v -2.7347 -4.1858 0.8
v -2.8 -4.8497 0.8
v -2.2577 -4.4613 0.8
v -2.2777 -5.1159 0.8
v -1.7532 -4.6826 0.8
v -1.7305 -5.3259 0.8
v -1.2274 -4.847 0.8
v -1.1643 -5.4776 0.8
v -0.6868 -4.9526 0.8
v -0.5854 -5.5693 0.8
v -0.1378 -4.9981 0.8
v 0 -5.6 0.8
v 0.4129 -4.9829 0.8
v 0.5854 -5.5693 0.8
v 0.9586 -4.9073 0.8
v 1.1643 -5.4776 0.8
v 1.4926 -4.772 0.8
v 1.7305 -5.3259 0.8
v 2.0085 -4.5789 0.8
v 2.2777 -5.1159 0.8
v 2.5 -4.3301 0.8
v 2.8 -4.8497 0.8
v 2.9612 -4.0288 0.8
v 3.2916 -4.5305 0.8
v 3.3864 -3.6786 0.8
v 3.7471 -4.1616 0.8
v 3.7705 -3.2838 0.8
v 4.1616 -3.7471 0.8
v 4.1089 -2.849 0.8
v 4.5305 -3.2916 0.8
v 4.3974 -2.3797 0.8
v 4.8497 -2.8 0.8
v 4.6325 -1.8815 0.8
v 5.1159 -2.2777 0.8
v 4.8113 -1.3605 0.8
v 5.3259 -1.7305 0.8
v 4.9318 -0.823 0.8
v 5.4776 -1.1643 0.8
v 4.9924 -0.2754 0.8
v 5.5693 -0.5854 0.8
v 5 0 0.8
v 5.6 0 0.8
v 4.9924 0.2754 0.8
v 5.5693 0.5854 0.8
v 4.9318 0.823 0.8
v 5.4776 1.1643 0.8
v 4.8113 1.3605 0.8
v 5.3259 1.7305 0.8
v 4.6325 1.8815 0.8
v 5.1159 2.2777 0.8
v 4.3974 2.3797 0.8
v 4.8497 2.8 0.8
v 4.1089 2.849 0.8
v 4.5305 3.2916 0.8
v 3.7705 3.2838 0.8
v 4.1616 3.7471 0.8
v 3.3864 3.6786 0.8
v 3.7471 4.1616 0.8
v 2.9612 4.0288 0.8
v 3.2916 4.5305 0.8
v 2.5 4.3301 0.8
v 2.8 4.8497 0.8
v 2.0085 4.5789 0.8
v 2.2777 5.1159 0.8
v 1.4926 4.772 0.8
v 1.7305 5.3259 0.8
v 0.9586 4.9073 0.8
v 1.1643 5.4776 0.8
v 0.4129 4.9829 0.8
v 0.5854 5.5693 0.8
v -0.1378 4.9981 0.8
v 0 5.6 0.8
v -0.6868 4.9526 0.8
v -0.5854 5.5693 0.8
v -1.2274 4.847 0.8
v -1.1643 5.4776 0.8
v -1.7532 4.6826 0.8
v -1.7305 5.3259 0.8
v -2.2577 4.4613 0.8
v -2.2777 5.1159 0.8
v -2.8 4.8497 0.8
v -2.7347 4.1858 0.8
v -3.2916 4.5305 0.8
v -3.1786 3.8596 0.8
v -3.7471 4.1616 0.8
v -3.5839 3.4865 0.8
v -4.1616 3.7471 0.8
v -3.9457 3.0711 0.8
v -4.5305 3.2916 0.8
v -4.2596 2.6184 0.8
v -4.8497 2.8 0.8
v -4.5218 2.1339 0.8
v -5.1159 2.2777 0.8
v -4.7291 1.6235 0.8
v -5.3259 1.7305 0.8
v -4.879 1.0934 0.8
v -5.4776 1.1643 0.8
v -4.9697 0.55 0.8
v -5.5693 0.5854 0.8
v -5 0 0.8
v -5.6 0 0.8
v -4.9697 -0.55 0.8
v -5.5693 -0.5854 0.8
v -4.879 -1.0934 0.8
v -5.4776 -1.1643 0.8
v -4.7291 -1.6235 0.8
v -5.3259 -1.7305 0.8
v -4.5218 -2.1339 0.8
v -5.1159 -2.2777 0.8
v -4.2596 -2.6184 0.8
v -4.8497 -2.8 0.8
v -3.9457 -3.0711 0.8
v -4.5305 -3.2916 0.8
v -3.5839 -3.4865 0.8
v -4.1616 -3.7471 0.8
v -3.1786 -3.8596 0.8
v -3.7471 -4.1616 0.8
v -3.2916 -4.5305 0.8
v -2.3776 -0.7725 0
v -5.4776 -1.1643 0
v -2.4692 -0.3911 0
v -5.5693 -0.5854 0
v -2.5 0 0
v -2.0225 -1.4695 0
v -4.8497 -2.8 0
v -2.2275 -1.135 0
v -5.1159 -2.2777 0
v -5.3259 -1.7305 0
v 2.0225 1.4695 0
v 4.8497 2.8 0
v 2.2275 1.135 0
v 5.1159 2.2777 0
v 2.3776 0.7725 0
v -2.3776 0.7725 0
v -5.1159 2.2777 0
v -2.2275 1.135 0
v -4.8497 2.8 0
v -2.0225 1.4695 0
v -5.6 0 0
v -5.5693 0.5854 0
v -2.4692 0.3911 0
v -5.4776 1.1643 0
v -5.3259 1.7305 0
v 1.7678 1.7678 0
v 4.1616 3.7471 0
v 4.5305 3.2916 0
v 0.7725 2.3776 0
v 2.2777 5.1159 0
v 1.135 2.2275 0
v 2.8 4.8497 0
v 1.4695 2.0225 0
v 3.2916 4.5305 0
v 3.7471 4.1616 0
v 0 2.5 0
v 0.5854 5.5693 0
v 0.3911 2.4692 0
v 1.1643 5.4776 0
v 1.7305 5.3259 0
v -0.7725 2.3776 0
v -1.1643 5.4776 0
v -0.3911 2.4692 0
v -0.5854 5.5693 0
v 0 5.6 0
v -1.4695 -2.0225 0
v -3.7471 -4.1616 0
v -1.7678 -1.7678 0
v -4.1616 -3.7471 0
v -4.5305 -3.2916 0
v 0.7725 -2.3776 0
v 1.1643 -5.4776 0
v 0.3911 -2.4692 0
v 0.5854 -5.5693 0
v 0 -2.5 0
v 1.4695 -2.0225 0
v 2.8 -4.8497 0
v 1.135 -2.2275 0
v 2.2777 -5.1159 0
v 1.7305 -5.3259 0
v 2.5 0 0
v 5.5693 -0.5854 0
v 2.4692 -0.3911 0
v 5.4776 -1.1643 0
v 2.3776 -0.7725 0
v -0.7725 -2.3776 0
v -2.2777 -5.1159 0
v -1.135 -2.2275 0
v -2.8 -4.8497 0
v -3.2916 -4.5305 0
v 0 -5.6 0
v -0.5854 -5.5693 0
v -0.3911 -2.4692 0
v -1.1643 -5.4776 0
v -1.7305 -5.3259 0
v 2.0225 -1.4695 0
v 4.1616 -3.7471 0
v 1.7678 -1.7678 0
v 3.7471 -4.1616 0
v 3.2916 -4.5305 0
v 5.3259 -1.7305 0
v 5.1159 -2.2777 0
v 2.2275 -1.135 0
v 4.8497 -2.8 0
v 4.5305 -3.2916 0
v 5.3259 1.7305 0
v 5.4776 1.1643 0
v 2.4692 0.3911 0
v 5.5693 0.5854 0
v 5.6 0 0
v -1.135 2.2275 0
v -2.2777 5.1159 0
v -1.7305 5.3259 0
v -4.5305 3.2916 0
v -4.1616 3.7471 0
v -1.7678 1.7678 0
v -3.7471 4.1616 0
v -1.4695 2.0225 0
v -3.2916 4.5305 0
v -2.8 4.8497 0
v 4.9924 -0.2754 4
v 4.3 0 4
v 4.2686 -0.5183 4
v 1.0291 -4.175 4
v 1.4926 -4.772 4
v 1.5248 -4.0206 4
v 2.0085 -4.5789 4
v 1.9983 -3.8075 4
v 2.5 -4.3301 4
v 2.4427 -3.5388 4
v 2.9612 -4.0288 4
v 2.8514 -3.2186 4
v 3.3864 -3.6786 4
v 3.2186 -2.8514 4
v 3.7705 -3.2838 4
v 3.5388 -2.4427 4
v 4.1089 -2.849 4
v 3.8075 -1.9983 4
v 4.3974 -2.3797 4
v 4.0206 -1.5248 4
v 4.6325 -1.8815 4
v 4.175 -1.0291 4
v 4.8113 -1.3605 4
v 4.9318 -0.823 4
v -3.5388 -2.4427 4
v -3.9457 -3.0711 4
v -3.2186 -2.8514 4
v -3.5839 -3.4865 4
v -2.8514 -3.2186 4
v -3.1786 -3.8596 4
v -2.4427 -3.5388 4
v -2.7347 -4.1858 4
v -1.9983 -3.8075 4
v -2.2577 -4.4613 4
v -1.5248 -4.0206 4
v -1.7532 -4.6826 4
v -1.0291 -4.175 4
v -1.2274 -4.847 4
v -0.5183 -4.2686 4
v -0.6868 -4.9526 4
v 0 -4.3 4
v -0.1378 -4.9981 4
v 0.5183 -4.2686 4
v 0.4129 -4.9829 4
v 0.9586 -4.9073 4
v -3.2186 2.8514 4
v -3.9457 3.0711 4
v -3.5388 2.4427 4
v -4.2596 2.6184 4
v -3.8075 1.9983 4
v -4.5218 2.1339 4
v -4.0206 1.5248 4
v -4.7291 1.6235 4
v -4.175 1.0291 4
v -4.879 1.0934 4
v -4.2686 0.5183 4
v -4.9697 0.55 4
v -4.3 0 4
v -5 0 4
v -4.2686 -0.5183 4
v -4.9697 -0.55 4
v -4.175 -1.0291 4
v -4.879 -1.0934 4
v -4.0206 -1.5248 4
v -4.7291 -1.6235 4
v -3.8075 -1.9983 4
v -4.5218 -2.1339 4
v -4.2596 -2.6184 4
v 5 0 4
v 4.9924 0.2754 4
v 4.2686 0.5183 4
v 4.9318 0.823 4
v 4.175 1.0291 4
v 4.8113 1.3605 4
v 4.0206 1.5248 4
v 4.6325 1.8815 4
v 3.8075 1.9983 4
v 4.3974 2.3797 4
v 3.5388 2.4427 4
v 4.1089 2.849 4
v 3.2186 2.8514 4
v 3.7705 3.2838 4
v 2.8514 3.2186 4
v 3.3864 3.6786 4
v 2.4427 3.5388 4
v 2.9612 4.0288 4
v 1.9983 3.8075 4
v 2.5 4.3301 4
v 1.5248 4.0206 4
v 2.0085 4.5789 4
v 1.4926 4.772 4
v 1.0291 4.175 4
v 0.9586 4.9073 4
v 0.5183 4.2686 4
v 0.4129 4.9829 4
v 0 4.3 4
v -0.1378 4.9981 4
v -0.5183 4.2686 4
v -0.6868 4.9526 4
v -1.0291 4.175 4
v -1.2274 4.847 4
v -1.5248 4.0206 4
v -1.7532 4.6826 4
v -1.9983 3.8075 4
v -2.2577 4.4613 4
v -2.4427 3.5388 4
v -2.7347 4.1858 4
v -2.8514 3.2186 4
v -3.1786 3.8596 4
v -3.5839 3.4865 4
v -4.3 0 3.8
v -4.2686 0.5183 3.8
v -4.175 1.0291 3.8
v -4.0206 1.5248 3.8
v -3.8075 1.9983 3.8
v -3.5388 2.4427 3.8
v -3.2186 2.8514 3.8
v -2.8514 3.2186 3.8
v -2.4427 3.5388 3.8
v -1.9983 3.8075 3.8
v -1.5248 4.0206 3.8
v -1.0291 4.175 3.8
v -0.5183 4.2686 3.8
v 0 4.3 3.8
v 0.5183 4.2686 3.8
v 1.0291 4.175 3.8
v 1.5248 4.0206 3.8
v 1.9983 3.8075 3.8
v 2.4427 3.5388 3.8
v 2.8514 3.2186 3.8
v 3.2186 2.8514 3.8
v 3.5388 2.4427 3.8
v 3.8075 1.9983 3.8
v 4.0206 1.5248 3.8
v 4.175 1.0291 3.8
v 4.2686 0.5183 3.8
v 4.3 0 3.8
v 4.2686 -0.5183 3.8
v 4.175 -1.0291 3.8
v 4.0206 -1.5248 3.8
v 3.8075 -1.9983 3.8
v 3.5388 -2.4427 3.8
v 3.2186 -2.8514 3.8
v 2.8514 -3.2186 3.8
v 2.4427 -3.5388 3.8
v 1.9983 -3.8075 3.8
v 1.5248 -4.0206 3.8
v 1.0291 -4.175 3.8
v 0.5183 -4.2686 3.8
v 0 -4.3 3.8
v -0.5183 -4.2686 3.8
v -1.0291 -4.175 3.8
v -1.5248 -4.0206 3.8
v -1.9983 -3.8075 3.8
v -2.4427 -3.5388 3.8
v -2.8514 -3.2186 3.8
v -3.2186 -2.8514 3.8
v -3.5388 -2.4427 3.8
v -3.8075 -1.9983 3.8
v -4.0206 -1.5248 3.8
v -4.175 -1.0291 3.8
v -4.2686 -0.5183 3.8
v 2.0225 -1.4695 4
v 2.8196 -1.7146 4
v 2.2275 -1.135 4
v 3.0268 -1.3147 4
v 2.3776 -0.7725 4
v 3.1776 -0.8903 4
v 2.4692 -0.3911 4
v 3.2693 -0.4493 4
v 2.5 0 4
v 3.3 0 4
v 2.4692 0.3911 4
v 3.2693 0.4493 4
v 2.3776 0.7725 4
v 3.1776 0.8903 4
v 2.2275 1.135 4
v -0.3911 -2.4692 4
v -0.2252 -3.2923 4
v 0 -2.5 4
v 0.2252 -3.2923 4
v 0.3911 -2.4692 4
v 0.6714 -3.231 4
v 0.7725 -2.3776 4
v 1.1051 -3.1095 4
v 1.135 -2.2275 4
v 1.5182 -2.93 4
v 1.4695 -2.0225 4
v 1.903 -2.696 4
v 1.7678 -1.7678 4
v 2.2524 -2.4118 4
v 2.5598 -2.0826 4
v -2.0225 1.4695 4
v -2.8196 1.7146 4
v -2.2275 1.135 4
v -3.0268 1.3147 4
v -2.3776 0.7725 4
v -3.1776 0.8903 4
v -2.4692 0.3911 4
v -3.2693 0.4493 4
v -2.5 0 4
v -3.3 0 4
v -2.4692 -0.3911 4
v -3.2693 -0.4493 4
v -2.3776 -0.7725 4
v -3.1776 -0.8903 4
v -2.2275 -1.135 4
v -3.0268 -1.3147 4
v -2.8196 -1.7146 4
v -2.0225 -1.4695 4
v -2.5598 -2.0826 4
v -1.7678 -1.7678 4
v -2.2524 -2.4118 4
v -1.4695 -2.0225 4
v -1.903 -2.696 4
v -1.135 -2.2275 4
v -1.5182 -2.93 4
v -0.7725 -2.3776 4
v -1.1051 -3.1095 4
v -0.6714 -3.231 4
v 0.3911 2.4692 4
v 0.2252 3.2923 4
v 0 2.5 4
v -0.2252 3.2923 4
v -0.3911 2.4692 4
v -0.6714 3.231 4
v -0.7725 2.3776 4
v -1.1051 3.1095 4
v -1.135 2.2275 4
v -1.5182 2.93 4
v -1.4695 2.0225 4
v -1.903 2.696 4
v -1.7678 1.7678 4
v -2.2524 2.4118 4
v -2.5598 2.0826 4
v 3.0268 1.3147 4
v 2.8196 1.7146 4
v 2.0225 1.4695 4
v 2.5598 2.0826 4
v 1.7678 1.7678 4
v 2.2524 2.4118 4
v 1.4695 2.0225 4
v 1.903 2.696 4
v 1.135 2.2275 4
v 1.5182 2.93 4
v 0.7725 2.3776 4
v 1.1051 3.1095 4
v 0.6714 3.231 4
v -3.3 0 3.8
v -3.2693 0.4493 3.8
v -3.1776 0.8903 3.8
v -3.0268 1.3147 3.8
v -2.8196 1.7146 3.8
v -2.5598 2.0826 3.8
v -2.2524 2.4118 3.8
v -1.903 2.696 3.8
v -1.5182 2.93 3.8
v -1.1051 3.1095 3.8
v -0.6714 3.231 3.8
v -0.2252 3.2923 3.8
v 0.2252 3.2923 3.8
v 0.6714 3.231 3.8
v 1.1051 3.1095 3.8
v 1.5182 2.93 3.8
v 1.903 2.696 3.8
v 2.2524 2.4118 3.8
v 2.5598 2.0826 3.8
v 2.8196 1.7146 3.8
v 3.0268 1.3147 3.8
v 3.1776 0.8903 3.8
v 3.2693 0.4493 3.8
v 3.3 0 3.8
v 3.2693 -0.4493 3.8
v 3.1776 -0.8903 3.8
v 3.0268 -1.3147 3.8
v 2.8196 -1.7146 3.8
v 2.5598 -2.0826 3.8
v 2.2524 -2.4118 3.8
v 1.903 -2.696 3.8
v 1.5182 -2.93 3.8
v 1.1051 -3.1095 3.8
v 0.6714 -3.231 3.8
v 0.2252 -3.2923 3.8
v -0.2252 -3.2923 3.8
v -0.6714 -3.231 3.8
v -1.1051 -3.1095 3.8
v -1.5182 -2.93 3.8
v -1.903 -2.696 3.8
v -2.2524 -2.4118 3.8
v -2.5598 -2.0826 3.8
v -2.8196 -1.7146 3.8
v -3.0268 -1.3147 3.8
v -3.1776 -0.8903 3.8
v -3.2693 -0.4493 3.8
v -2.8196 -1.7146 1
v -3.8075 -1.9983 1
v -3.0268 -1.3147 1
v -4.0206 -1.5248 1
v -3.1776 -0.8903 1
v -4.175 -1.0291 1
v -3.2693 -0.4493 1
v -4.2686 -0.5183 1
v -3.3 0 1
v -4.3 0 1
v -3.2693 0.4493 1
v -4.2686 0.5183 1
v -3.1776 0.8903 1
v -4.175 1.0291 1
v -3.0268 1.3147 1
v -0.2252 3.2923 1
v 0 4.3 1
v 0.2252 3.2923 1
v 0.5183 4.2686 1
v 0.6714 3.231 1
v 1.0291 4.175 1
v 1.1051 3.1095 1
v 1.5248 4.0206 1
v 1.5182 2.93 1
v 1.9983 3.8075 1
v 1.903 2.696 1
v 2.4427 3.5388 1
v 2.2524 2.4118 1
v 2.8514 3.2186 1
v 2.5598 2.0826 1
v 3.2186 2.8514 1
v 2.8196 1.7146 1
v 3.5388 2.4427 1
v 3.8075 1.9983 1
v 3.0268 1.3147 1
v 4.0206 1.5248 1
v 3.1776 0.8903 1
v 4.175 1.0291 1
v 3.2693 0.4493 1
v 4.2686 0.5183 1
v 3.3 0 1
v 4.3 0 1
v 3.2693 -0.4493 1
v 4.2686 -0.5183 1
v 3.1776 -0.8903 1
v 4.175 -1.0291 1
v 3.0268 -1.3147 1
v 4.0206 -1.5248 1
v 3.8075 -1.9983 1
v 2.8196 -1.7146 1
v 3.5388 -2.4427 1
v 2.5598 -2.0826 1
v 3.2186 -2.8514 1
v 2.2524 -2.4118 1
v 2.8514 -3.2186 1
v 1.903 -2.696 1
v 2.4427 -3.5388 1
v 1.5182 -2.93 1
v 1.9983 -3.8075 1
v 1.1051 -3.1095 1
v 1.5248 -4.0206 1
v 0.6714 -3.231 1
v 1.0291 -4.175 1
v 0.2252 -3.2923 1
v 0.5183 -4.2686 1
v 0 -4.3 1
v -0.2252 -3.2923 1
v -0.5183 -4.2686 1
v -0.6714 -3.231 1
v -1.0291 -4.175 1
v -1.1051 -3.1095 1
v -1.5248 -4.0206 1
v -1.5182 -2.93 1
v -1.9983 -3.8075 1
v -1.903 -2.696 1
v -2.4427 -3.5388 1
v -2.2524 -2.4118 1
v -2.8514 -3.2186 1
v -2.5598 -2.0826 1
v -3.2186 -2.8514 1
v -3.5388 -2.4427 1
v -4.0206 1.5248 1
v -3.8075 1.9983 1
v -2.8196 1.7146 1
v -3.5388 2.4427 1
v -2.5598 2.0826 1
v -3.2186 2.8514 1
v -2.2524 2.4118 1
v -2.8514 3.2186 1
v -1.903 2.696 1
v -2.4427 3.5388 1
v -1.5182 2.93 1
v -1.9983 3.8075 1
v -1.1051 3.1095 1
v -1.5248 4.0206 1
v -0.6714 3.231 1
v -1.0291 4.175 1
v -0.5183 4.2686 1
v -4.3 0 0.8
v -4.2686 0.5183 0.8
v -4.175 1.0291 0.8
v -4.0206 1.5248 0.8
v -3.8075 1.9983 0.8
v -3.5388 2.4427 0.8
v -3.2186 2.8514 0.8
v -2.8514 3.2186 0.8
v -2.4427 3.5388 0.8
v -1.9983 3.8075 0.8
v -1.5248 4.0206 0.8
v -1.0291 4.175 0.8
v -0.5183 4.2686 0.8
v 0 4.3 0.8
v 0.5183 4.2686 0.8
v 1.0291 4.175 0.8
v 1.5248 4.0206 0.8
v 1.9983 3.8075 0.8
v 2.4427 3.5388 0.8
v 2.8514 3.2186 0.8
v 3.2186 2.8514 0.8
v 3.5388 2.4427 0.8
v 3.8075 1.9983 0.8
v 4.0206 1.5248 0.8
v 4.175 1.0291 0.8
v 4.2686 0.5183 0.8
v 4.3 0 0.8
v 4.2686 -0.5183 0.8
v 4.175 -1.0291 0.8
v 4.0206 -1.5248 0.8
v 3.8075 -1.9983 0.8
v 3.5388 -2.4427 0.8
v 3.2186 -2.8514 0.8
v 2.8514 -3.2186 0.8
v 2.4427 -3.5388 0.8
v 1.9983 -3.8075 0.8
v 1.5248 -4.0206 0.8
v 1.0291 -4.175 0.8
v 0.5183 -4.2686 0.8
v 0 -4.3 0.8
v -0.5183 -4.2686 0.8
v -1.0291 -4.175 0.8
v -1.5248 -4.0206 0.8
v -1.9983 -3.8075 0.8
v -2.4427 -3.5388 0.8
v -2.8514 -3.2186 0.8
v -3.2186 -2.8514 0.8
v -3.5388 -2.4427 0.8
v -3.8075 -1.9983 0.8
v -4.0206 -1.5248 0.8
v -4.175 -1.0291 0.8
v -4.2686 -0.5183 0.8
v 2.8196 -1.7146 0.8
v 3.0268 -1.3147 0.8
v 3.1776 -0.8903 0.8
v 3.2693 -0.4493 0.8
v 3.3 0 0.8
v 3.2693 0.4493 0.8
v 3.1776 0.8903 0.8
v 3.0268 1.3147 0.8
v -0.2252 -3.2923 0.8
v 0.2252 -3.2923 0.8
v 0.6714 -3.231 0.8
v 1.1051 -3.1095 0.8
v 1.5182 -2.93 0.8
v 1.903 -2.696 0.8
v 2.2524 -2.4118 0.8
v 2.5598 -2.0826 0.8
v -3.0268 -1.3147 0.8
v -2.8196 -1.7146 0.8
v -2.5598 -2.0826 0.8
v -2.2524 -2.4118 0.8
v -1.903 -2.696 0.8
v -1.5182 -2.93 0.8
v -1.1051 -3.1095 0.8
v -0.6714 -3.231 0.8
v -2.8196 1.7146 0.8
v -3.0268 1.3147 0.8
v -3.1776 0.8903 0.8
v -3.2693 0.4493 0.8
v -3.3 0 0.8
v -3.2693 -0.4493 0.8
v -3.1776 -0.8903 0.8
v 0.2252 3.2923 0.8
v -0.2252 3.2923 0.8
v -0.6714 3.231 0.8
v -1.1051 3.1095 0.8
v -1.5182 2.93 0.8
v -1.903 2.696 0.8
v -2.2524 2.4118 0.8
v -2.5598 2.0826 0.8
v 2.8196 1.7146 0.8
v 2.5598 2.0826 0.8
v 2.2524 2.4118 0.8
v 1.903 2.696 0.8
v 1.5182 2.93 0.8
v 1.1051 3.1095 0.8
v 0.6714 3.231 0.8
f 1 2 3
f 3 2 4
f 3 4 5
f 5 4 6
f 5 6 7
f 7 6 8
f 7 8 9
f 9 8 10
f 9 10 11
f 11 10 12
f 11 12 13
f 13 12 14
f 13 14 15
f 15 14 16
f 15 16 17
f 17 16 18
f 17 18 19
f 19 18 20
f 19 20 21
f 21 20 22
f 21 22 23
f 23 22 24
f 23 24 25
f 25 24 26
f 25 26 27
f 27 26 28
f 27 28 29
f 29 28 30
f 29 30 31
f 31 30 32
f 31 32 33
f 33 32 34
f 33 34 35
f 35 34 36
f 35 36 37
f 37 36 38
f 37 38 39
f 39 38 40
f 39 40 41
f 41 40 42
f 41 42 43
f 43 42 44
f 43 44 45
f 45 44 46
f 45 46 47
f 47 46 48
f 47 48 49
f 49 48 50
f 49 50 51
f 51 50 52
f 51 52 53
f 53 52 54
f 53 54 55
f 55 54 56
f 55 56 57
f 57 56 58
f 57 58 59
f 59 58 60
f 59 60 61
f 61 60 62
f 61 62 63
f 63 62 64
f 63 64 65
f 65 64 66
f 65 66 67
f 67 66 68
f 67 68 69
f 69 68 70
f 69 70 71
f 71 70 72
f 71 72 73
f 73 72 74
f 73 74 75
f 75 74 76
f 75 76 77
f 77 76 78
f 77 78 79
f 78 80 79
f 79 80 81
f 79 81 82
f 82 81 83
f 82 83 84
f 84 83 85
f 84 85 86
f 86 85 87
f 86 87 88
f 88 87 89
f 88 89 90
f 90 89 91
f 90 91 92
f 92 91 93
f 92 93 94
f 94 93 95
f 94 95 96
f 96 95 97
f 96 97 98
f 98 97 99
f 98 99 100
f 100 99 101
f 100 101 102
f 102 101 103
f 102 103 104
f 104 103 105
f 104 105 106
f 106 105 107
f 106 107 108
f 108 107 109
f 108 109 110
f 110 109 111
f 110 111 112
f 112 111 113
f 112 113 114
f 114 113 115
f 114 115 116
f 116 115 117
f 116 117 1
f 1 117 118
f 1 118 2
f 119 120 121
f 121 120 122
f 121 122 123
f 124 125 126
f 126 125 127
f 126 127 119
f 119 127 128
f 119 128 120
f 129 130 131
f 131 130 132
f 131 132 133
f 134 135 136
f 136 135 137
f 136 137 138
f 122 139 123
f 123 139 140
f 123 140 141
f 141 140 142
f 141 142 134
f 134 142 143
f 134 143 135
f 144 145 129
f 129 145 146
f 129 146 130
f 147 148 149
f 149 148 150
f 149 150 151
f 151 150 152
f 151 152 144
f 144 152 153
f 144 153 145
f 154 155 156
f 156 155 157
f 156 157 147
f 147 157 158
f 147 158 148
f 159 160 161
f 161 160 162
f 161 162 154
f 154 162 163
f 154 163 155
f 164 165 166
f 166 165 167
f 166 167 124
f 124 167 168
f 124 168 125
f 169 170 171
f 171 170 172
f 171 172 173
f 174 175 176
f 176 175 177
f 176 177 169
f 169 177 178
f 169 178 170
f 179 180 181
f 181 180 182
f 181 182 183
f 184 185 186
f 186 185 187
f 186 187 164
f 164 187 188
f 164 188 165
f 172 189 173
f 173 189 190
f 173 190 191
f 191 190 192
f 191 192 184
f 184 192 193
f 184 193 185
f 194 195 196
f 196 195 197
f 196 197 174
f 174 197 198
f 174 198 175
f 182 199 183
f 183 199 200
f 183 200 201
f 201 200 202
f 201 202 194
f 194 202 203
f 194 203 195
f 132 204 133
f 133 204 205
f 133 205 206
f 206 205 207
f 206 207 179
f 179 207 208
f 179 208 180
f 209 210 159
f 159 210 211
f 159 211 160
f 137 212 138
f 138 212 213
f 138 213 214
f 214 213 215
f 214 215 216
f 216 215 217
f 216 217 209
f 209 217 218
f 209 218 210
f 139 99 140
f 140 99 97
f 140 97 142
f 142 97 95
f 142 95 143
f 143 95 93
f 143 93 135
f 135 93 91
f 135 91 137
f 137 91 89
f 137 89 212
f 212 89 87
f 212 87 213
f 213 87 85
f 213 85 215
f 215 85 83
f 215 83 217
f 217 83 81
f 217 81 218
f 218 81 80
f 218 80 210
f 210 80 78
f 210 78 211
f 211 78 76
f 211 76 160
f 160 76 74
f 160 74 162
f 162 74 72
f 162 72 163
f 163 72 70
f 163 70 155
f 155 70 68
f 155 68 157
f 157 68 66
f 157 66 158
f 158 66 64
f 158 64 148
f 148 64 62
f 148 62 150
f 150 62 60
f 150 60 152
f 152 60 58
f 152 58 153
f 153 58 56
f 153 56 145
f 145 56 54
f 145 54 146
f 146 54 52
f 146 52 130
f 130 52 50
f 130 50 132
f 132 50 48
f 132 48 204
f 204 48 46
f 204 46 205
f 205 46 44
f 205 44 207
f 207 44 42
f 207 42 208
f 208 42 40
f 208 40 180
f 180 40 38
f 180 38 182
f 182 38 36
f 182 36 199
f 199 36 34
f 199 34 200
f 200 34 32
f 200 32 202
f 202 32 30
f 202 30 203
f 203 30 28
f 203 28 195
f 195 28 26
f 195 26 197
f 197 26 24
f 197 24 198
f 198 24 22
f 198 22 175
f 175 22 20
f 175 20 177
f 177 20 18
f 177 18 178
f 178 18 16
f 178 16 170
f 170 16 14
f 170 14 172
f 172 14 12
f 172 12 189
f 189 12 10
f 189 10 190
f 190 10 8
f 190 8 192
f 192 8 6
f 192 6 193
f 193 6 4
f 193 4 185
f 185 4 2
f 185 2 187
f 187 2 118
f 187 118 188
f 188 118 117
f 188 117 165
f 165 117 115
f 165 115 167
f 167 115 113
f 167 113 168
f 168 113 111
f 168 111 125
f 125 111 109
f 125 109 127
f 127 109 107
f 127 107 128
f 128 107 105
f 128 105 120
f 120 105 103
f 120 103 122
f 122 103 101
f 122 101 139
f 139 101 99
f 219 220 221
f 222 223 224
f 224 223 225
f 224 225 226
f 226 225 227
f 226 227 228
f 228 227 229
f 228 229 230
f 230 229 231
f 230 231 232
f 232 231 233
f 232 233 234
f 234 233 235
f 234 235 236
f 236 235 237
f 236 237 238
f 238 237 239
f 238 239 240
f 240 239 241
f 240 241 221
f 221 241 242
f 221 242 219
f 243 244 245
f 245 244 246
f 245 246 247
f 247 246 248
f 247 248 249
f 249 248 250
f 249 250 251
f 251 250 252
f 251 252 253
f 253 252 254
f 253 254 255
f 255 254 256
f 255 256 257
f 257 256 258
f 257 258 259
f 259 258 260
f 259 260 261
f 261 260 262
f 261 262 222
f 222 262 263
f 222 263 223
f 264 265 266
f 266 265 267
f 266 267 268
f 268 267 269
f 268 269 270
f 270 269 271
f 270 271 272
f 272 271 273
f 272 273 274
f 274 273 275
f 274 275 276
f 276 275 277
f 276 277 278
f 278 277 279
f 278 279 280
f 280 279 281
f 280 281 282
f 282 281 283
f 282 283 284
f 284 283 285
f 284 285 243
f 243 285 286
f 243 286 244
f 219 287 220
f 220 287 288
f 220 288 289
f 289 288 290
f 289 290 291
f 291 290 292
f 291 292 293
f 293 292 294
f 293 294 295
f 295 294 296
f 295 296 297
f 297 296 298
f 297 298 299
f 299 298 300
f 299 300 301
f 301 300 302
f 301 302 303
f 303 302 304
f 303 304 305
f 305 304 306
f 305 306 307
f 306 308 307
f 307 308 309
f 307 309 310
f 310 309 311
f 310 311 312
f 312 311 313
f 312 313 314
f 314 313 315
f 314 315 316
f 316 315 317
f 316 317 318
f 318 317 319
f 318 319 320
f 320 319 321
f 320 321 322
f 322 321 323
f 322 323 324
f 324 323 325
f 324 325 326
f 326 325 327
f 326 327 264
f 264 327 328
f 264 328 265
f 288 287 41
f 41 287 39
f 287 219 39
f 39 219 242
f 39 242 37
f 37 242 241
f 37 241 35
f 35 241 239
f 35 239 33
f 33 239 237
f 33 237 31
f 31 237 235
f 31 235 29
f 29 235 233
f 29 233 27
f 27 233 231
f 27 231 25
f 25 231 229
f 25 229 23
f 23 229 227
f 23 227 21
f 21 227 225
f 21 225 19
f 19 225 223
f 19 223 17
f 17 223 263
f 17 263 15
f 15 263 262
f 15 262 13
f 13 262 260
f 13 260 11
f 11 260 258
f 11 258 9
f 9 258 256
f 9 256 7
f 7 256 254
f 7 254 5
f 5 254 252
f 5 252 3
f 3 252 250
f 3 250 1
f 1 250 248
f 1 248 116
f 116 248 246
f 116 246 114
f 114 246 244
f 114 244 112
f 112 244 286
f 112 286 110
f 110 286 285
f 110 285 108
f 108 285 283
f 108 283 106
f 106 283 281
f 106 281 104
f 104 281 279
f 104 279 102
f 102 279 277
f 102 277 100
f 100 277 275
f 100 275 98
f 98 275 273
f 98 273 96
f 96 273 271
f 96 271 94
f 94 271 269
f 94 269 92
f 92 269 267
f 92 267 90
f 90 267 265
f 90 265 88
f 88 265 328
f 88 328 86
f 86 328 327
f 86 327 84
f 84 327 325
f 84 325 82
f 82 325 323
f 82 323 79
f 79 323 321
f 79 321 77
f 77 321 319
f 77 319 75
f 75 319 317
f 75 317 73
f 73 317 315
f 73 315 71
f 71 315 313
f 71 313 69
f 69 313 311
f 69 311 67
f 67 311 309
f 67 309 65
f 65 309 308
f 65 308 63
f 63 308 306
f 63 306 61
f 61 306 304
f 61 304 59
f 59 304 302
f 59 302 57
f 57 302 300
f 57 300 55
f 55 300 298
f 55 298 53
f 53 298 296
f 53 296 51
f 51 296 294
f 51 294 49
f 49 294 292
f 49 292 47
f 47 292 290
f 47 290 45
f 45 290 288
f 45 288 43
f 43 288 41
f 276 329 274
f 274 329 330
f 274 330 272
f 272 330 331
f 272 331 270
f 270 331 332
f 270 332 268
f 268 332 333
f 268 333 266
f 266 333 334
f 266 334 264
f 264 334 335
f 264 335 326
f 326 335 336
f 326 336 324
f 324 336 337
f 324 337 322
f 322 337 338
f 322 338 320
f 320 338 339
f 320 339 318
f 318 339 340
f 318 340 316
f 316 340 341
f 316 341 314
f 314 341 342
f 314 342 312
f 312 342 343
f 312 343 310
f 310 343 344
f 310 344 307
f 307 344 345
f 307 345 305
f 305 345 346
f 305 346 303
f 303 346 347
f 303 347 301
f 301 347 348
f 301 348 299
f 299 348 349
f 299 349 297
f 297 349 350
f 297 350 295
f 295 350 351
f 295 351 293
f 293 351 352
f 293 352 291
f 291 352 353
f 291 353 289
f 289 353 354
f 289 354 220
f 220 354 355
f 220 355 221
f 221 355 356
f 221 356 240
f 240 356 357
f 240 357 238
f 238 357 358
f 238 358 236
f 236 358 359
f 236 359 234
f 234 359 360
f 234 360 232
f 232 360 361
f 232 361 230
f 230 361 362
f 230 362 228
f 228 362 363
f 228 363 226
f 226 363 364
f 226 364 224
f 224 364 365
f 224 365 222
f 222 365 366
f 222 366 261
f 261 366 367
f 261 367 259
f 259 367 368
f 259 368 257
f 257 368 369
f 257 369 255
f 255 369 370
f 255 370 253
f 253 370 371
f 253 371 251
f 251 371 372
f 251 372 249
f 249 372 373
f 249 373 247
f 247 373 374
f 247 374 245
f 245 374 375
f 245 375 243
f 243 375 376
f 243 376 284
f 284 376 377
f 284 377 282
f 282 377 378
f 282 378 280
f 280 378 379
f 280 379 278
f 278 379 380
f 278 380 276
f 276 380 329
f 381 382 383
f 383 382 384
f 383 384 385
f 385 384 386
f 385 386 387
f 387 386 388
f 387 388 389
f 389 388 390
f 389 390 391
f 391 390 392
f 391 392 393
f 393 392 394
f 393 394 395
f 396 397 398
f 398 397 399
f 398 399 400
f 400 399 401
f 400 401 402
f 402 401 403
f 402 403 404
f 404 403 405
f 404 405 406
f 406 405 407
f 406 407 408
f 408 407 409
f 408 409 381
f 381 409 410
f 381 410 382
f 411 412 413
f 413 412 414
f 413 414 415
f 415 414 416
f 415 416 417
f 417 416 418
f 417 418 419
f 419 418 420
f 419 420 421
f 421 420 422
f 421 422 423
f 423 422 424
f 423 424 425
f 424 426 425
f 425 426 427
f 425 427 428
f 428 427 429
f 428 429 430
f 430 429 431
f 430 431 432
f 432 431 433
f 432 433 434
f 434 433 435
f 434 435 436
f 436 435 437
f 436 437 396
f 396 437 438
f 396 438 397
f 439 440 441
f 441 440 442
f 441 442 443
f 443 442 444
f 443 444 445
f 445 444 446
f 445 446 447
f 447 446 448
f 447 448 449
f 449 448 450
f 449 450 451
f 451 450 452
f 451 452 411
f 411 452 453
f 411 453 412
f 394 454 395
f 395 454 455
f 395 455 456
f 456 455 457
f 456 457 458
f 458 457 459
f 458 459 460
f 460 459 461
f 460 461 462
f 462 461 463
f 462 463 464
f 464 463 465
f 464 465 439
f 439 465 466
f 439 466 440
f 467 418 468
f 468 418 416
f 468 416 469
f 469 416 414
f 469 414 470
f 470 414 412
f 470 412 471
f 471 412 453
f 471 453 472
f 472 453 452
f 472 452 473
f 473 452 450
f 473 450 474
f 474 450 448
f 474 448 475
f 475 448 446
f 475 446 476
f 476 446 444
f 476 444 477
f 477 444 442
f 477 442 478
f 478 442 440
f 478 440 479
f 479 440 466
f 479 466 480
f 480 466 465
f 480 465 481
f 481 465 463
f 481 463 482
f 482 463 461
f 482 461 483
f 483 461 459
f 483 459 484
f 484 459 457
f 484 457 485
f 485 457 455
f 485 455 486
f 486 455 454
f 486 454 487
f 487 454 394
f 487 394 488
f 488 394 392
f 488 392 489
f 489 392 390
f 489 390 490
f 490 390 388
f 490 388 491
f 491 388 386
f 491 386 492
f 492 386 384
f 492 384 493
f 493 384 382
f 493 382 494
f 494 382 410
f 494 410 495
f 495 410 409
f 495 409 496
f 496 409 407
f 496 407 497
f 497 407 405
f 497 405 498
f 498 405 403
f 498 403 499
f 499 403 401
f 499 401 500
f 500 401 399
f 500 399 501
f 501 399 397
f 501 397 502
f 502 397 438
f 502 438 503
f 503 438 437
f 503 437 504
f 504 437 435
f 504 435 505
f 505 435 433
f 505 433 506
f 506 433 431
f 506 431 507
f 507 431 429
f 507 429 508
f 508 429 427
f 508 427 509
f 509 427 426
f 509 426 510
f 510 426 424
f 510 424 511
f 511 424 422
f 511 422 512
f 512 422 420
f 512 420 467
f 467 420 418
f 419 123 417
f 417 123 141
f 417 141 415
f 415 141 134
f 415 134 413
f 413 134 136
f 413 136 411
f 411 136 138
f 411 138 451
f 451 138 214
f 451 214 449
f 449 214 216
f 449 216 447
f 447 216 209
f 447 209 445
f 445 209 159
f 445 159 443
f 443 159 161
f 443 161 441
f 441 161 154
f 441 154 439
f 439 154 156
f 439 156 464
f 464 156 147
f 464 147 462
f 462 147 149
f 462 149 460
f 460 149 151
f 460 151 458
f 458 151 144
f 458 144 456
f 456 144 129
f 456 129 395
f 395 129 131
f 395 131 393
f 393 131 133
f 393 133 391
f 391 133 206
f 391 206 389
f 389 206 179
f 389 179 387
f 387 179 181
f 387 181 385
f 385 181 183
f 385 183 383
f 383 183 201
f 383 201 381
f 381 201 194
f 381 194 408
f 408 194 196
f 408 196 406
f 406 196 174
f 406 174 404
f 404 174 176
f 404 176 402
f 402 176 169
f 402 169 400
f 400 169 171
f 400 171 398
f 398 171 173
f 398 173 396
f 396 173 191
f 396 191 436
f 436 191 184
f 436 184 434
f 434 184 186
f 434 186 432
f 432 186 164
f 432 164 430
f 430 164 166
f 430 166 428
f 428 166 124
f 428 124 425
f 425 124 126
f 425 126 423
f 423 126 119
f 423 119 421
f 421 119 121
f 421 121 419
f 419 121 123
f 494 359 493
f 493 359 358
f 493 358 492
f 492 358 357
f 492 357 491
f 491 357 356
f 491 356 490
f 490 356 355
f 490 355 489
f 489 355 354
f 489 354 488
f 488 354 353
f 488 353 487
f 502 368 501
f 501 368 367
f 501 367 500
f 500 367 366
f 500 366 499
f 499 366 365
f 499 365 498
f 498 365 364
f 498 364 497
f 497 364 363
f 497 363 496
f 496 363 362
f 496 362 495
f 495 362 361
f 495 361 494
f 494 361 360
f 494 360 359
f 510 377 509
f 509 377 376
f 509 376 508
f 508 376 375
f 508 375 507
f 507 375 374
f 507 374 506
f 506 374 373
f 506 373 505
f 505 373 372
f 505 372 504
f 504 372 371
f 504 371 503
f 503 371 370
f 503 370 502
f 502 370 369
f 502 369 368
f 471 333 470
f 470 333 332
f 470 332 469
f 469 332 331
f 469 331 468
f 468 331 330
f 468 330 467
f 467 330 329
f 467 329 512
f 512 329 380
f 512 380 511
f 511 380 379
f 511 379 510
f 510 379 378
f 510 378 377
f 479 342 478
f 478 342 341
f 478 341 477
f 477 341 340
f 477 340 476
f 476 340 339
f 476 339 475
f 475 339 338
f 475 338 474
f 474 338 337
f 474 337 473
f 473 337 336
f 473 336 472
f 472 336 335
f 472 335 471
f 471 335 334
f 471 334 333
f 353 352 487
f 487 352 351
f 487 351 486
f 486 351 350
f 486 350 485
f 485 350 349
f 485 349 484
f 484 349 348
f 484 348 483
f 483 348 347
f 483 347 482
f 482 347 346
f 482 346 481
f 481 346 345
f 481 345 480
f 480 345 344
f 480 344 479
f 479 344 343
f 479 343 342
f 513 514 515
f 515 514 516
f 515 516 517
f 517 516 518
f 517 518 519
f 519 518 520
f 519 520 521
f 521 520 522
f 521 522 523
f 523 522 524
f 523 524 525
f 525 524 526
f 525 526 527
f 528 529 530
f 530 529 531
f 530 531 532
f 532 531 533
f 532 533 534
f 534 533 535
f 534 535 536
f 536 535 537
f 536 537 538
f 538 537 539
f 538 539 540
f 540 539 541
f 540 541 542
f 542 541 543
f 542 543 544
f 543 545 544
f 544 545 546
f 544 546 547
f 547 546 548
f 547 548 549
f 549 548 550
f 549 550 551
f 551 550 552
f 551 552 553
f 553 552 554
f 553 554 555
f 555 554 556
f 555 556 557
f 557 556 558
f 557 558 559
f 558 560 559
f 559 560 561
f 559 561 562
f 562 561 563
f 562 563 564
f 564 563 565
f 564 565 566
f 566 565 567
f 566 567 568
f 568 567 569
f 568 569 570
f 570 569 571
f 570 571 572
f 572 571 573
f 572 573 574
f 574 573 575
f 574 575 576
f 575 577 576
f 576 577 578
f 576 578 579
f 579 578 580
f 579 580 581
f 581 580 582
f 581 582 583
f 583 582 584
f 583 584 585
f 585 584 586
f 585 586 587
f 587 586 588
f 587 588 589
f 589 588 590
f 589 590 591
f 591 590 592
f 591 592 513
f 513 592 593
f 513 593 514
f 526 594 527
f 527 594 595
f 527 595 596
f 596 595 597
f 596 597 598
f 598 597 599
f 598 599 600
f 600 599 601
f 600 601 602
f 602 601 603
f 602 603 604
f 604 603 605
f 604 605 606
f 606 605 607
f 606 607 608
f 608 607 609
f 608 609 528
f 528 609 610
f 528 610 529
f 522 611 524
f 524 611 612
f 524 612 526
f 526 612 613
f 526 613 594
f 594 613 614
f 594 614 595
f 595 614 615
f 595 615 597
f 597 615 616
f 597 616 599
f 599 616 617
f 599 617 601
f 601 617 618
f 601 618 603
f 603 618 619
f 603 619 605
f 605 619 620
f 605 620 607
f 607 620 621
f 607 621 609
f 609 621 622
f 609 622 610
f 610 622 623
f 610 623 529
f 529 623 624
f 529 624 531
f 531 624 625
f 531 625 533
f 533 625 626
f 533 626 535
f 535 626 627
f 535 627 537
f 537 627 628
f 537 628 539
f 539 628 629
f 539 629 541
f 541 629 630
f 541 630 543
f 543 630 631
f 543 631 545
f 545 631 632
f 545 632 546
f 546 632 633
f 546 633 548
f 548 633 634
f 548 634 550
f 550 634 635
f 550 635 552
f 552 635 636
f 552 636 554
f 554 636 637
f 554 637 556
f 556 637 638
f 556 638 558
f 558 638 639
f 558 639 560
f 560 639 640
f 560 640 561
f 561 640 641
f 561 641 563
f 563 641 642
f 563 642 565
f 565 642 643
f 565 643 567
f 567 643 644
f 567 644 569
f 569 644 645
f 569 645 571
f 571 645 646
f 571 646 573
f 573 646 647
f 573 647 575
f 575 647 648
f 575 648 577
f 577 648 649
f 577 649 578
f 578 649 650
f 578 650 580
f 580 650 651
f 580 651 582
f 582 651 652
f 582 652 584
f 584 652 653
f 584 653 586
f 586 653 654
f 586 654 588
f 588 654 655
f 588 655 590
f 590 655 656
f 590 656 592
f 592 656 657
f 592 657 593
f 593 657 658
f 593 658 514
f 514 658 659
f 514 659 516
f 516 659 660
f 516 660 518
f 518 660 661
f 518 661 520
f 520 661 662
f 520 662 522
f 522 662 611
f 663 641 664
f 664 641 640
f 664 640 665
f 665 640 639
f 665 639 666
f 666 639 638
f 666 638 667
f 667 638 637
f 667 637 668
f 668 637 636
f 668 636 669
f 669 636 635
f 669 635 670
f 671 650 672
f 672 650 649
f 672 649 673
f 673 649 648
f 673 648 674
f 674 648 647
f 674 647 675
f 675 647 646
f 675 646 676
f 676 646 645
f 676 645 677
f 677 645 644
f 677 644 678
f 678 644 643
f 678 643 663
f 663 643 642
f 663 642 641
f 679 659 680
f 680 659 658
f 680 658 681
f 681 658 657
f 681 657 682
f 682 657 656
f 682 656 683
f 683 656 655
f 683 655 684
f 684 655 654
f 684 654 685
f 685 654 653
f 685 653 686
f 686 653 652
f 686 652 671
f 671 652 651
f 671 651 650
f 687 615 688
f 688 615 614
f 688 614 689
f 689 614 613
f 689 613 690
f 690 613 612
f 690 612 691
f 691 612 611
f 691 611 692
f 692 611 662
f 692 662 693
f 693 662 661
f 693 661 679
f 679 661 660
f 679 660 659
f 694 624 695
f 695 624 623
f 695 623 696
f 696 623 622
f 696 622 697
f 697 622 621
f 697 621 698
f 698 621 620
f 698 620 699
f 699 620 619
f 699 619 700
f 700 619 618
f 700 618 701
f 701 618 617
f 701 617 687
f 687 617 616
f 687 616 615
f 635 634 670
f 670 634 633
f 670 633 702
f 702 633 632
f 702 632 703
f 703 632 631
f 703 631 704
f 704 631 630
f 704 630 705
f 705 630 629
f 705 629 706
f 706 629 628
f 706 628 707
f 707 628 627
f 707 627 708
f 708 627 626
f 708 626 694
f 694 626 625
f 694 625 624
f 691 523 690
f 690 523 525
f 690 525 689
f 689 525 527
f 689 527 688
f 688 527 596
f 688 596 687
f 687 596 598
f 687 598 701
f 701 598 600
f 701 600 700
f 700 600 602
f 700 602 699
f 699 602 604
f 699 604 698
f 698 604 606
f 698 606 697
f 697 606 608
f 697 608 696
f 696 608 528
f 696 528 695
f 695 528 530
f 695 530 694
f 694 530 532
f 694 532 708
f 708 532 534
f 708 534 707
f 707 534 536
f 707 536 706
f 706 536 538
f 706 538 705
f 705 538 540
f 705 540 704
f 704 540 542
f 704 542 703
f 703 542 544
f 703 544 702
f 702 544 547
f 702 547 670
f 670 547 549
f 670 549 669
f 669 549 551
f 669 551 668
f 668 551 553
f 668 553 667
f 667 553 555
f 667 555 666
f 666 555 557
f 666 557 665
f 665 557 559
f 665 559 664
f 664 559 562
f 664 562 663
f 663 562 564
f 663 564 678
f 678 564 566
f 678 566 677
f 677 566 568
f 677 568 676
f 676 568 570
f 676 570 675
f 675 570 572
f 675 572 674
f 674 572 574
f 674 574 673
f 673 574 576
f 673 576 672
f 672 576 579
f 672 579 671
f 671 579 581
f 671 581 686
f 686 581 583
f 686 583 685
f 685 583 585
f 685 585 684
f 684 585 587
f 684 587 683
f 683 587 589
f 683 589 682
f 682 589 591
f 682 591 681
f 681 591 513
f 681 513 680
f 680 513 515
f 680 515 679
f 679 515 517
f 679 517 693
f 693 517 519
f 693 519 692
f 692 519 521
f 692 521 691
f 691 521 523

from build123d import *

# Parameters (mm, degrees)
SKETCH1_R        = 5.6
SKETCH1_R_2      = 3.3
FLANGE_DEPTH     = 0.8
SKETCH2_R        = 5
SKETCH2_R_2      = 4.3
OUTER_RING_DEPTH = 3.2
SKETCH3_R        = 3.3
SKETCH3_R_2      = 2.5
INNER_RING_DEPTH = 4
SKETCH4_R        = 4.3
SKETCH4_R_2      = 3.3
SHIELDS_DEPTH    = 2.8


with BuildPart() as part:
    # Sketch1 → Flange (new body)
    with BuildSketch(Plane.XY):
        Circle(SKETCH1_R)
        Circle(SKETCH1_R_2, mode=Mode.SUBTRACT)
    extrude(amount=FLANGE_DEPTH)

    # Sketch2 → Outer_ring (add)
    with BuildSketch(Plane.XY.offset(0.8)):
        Circle(SKETCH2_R)
        Circle(SKETCH2_R_2, mode=Mode.SUBTRACT)
    extrude(amount=OUTER_RING_DEPTH)

    # Sketch3 → Inner_ring (add)
    with BuildSketch(Plane.XY):
        Circle(SKETCH3_R)
        Circle(SKETCH3_R_2, mode=Mode.SUBTRACT)
    extrude(amount=INNER_RING_DEPTH)

    # Sketch4 → Shields (add)
    with BuildSketch(Plane.XY.offset(1)):
        Circle(SKETCH4_R)
        Circle(SKETCH4_R_2, mode=Mode.SUBTRACT)
    extrude(amount=SHIELDS_DEPTH)


solid = part.part
